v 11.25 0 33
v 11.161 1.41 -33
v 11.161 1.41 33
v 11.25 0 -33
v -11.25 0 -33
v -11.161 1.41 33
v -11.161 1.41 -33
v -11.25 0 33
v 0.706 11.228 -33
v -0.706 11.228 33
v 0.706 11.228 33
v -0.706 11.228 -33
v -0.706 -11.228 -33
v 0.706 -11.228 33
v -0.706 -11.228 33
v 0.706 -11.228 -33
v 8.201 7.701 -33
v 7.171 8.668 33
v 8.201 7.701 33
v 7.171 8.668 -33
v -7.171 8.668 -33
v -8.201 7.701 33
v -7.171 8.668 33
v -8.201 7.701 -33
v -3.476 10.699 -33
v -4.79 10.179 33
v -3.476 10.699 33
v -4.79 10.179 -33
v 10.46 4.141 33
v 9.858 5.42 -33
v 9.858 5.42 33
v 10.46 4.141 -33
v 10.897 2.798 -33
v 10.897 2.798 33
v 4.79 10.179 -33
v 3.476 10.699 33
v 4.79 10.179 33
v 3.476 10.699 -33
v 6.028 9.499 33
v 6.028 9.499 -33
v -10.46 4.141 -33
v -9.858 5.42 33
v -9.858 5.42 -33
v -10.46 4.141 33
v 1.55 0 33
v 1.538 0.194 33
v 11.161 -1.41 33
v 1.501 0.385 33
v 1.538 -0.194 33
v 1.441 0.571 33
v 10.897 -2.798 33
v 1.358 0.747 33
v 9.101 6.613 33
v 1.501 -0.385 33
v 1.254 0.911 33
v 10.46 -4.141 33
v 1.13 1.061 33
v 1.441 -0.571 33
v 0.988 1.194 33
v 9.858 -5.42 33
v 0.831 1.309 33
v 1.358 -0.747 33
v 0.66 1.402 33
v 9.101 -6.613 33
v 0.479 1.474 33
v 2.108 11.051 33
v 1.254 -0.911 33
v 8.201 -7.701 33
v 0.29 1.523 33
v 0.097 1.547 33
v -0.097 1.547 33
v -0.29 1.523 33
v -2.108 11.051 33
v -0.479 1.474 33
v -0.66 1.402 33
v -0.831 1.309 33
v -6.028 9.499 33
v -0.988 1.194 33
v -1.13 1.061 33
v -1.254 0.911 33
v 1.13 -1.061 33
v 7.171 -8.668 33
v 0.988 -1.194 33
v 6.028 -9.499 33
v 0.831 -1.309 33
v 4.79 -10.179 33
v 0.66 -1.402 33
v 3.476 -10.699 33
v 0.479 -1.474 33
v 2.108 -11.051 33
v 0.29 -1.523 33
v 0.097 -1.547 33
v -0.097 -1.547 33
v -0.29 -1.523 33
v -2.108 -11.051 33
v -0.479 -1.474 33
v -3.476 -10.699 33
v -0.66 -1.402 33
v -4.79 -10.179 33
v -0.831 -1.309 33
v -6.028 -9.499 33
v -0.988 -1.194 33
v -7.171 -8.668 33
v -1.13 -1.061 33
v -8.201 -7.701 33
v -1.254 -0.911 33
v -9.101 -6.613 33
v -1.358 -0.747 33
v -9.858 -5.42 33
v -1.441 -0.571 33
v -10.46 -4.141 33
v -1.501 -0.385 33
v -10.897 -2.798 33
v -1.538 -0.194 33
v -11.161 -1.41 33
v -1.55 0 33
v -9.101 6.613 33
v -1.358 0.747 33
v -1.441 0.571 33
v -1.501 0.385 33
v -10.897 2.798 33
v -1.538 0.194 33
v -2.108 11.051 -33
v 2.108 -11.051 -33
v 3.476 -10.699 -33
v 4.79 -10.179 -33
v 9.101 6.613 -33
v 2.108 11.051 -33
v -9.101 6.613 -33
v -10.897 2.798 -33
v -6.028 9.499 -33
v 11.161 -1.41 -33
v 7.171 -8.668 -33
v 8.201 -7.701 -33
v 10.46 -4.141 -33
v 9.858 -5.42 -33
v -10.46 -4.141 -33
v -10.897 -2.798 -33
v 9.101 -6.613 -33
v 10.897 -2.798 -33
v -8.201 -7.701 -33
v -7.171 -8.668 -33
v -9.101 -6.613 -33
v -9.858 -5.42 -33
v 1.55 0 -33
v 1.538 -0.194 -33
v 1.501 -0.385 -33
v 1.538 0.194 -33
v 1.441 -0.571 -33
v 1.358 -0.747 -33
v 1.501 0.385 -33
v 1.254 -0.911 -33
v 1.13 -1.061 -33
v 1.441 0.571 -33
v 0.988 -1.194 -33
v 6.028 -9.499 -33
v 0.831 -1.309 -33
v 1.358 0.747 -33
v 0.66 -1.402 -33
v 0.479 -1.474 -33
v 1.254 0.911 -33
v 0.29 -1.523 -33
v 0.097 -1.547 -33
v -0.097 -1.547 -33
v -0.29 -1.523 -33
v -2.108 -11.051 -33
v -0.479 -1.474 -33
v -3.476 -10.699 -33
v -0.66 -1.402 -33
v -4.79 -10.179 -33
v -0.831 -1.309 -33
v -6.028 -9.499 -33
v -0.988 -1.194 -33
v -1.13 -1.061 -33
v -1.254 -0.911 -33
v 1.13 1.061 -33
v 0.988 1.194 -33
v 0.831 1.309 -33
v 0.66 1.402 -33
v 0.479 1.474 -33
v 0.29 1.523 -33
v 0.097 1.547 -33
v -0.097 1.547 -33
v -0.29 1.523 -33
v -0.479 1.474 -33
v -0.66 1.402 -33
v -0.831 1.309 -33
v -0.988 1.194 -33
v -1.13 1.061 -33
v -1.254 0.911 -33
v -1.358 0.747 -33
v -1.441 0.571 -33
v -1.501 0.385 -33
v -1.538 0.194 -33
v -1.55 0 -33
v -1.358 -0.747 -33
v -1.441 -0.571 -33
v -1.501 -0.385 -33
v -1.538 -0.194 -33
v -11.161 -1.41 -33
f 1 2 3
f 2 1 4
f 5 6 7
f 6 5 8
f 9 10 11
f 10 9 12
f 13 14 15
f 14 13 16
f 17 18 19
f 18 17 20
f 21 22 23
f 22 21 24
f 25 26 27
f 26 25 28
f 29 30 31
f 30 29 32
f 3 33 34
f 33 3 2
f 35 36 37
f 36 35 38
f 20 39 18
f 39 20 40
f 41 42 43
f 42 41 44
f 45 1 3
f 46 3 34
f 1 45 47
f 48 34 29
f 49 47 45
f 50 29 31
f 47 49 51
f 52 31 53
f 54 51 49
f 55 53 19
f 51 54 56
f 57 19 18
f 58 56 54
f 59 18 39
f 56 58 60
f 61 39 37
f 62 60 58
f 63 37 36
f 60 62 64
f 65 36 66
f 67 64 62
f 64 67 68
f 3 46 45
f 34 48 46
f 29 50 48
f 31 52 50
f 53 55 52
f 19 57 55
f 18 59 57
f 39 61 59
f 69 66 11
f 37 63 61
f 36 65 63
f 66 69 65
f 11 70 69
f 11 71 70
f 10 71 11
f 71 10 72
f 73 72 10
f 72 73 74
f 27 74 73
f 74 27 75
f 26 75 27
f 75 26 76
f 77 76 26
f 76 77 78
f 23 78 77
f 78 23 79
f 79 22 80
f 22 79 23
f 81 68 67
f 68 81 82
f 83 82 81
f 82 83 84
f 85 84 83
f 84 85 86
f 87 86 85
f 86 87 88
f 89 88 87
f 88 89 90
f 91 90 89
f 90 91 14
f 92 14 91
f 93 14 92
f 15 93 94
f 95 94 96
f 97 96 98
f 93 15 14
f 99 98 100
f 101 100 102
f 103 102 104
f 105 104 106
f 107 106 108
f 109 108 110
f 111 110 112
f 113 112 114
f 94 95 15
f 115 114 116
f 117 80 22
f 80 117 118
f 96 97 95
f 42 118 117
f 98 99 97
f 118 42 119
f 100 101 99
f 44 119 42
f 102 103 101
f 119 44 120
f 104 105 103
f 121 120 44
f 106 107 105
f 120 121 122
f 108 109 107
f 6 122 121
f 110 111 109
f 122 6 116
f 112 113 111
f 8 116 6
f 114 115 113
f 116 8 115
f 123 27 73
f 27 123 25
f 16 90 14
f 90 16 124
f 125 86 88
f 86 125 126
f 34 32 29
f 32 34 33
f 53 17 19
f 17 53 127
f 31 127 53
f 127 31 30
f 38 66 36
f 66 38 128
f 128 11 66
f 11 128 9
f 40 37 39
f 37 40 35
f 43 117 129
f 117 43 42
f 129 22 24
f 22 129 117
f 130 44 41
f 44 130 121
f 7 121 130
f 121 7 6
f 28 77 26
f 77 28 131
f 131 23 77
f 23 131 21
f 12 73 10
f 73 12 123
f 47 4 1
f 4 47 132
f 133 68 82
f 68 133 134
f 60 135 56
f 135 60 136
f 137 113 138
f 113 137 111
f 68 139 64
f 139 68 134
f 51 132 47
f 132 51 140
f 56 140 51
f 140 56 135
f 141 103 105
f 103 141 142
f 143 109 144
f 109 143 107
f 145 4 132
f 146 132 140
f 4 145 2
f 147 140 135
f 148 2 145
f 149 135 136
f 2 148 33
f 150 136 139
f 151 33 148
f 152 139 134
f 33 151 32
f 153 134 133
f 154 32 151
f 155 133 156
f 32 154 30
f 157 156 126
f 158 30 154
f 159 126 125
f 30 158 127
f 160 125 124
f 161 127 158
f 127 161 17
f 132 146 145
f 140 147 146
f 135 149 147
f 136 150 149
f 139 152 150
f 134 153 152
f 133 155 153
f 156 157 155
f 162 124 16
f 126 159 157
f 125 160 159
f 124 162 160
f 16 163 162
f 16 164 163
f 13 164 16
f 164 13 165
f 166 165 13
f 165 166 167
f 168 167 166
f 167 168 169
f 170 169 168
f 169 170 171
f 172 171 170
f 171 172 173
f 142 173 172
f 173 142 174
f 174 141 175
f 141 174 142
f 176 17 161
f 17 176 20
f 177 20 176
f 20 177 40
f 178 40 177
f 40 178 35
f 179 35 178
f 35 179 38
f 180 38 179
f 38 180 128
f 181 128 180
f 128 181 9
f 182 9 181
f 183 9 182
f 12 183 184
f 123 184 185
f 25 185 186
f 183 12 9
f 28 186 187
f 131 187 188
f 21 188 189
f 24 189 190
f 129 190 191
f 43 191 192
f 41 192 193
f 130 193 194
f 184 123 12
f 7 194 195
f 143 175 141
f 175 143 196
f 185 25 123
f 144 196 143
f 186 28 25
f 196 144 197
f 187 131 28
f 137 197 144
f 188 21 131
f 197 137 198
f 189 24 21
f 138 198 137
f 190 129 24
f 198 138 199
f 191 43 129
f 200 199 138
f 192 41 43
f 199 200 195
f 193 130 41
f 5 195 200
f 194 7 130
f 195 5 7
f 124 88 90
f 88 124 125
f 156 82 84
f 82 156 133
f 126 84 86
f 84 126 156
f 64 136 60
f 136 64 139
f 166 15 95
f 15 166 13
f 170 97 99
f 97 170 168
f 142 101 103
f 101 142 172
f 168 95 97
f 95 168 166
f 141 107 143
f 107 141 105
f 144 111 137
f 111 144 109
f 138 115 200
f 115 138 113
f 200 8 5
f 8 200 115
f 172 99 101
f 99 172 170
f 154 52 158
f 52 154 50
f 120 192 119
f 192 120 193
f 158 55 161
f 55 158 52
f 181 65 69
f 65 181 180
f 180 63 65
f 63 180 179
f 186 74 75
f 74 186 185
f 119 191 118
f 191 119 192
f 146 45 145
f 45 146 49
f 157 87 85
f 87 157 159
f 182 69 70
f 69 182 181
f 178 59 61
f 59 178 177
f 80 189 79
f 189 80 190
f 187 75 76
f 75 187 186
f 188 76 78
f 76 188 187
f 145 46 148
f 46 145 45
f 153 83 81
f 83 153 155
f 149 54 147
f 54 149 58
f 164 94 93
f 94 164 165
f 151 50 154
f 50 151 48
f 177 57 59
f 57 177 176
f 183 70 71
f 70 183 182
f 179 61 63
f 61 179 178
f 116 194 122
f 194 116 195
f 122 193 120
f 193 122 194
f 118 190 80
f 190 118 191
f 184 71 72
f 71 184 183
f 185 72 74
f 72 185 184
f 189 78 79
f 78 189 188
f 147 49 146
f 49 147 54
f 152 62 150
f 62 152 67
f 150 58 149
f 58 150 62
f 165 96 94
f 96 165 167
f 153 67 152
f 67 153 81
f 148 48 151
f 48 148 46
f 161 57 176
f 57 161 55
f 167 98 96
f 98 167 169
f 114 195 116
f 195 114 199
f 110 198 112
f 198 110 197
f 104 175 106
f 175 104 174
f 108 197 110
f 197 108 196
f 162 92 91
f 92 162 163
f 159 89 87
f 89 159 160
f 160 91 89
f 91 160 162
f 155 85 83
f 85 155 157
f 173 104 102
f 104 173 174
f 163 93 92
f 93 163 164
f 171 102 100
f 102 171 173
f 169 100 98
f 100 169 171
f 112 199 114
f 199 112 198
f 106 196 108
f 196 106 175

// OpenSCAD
$fn = 50;


difference() {
	union() {
		translate(v = [0, 0, -33.0000000000]) {
			cylinder(h = 66, r = 11.2500000000);
		}
	}
	union() {
		translate(v = [0, 0, -100.0000000000]) {
			cylinder(h = 200, r = 1.5500000000);
		}
	}
}
